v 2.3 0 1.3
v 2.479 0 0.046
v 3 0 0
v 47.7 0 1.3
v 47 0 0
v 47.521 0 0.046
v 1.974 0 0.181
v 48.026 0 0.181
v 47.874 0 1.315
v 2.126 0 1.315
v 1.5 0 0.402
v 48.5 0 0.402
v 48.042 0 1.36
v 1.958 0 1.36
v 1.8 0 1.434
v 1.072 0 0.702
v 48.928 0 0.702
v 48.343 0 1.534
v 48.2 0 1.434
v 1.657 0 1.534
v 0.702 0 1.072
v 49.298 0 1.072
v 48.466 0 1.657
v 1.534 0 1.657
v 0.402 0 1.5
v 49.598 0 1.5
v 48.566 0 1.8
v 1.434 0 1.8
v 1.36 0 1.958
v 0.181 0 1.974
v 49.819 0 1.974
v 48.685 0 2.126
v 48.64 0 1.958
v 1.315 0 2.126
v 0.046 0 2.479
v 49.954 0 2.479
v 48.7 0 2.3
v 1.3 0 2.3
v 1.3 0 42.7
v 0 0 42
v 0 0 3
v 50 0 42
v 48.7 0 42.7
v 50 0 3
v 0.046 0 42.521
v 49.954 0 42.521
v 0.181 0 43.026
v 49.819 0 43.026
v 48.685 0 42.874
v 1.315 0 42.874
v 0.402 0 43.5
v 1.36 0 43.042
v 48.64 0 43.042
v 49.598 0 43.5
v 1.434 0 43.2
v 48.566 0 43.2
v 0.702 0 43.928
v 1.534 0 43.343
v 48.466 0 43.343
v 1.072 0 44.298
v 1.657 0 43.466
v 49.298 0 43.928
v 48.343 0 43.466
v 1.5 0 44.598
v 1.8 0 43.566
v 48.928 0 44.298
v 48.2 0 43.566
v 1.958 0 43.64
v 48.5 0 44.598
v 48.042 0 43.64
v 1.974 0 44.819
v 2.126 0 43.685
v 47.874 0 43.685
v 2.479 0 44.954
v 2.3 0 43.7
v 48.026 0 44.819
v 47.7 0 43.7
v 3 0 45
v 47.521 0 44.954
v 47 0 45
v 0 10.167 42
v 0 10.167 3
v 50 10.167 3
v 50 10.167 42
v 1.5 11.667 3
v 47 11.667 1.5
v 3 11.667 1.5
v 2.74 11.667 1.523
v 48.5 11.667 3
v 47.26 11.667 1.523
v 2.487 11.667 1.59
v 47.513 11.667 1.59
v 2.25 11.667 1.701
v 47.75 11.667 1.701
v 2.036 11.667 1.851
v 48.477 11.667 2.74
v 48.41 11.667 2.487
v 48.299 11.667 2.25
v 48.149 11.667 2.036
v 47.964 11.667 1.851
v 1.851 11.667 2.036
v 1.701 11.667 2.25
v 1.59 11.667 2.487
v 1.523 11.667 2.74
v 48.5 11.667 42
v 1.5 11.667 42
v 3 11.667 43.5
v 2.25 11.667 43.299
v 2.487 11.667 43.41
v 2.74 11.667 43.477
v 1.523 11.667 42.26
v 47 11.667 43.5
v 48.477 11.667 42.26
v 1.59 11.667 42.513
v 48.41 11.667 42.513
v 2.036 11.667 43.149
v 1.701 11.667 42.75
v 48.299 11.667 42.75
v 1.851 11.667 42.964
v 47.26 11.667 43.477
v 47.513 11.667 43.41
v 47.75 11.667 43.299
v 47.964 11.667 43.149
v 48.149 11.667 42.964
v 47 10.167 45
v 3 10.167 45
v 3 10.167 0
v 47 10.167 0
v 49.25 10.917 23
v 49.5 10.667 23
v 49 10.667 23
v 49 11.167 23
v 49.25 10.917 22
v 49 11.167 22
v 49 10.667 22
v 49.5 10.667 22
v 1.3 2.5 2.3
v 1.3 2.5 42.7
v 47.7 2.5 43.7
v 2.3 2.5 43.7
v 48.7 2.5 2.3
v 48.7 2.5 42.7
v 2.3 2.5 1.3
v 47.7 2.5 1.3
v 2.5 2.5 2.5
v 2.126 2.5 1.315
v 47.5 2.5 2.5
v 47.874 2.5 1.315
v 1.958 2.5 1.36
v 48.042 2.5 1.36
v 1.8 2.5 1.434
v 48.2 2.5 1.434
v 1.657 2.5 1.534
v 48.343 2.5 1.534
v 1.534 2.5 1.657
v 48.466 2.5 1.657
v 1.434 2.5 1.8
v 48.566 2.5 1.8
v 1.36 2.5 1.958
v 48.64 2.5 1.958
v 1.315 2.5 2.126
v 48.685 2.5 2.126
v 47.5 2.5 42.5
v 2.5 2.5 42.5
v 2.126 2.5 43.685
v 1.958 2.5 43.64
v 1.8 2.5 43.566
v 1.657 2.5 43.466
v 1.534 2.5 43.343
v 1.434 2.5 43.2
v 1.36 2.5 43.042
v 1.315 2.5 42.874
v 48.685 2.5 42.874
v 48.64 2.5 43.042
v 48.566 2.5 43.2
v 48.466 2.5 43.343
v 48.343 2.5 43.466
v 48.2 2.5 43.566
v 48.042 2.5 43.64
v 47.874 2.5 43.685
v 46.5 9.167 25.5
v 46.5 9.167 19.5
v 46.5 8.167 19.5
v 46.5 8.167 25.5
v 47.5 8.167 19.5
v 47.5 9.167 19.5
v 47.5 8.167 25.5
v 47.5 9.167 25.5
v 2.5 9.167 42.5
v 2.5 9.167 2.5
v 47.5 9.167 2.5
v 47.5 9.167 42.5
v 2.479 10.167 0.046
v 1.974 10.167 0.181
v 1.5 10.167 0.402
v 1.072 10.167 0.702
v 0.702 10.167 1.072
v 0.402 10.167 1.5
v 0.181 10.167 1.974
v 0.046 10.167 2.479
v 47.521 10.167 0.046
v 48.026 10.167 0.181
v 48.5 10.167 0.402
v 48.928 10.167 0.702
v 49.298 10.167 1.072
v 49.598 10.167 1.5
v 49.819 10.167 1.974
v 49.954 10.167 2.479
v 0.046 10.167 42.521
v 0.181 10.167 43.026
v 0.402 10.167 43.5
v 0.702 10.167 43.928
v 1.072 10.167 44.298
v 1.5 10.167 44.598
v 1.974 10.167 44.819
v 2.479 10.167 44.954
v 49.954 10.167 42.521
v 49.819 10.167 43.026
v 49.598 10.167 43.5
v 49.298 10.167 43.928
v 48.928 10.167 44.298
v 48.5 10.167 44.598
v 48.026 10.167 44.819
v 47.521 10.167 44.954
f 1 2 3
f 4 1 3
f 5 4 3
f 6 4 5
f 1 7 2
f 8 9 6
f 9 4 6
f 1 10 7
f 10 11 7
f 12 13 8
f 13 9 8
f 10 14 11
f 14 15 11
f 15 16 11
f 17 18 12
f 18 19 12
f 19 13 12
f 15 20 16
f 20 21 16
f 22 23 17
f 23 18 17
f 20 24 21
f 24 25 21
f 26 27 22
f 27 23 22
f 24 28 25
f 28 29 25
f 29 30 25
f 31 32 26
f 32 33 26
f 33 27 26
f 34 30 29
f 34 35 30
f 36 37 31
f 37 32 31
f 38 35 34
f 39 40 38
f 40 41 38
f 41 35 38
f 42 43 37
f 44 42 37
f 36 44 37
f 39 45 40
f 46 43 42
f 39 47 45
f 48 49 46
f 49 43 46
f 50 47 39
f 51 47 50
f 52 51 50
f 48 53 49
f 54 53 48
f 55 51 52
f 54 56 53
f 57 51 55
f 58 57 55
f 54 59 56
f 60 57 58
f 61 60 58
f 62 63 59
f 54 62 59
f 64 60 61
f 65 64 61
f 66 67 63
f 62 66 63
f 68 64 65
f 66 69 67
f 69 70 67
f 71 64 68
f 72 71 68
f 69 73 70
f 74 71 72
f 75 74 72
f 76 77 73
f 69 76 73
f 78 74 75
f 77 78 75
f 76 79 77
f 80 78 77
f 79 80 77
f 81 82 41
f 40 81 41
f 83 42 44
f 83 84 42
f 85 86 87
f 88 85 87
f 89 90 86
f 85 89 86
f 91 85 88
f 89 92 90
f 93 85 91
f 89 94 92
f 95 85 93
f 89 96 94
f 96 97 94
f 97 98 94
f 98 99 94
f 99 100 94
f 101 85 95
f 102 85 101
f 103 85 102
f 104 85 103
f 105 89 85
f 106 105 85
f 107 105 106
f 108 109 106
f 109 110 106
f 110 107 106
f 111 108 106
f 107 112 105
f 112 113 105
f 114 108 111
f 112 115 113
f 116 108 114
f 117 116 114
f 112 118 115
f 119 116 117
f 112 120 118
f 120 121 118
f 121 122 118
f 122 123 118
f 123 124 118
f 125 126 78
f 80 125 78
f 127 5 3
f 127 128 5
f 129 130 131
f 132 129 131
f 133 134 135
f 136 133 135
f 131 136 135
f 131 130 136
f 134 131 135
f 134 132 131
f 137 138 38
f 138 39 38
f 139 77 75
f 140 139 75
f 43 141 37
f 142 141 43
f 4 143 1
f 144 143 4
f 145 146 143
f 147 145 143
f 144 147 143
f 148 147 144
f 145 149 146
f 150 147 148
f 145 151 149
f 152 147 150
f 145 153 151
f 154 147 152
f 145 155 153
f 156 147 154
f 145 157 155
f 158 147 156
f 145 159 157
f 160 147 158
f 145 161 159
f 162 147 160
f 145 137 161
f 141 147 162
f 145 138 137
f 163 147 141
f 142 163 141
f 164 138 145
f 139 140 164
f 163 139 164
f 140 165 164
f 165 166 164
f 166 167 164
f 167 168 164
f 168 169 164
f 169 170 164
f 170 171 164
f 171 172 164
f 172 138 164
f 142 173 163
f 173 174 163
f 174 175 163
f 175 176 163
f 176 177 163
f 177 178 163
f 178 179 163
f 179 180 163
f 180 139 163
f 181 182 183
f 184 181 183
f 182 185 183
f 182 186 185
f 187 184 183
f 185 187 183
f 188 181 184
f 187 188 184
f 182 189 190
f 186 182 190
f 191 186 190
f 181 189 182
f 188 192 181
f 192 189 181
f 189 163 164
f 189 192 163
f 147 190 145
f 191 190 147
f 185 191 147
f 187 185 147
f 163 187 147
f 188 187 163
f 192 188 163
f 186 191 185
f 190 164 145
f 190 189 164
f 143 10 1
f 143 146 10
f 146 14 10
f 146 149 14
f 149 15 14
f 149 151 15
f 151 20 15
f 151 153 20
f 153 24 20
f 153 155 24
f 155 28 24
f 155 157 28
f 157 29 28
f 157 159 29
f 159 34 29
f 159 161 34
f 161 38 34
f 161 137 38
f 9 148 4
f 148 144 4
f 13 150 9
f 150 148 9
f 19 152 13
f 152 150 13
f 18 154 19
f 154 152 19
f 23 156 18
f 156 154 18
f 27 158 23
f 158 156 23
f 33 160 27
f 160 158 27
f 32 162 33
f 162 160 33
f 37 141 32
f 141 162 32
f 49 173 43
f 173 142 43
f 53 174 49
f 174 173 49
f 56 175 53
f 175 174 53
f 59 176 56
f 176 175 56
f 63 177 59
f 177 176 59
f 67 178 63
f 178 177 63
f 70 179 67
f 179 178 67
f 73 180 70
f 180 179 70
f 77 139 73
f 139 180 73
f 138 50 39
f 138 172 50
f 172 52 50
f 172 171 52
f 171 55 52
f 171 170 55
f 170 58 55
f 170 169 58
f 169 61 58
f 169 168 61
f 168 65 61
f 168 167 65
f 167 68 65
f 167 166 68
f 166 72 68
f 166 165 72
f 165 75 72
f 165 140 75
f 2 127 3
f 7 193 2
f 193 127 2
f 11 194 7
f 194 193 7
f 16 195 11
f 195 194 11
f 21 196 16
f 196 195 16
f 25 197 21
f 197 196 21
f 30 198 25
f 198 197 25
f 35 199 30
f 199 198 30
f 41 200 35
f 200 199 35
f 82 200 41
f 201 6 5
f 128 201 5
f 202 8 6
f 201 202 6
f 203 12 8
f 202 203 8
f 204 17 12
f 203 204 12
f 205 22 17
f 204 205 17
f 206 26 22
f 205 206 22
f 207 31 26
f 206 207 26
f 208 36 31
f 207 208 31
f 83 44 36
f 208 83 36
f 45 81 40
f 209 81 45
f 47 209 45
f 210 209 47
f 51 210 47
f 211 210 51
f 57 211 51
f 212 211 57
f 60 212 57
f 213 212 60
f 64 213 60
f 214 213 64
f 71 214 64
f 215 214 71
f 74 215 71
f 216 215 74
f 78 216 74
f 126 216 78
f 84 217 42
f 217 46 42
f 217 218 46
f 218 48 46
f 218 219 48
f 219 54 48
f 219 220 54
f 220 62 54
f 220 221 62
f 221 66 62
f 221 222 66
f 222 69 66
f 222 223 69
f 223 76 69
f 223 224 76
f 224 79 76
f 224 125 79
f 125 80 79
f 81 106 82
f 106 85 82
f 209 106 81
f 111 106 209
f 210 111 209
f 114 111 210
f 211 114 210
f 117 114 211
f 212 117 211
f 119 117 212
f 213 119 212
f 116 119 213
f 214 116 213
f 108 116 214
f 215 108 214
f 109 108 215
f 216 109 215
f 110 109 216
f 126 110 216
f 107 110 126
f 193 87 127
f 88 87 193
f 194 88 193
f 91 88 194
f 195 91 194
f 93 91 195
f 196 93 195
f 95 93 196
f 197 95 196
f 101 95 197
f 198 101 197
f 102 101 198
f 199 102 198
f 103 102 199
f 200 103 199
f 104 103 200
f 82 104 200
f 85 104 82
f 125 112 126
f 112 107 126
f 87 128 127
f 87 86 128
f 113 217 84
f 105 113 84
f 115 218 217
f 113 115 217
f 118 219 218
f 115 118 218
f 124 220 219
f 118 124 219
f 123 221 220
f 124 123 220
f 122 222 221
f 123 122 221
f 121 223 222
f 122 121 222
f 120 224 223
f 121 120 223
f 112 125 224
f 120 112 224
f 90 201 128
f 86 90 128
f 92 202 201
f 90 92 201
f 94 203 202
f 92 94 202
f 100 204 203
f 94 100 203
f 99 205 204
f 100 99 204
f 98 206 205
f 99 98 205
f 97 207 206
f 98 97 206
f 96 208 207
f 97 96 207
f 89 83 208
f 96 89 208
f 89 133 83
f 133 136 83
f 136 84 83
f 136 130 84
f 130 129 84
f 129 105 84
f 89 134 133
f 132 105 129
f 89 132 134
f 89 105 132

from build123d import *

# Parameters (mm, degrees)
SKETCH1_W           = 50
SKETCH1_H           = 11.666666667
BOSS_EXTRUDE1_DEPTH = 45
SKETCH2_W           = 1
SKETCH2_H           = 1
CUT_EXTRUDE1_DEPTH  = 1
SHELL1_T            = -2.5
SKETCH3_W           = 47.4
SKETCH3_H           = 42.4
SKETCH3_W_2         = 45
SKETCH3_H_2         = 40
CUT_EXTRUDE3_DEPTH  = 2.5
FILLET1_R           = 1
FILLET2_R           = 3
CHAMFER1_SIZE       = 1.5


with BuildPart() as part:
    # Sketch1 → Boss-Extrude1 (new body)
    with BuildSketch(Plane.XY):
        with Locations((25, 5.833333334)):
            Rectangle(SKETCH1_W, SKETCH1_H)
    extrude(amount=BOSS_EXTRUDE1_DEPTH)

    # Sketch2 → Cut-Extrude1 (cut)
    with BuildSketch(Plane(origin=(50, 0, 0), x_dir=(0, 0, -1), z_dir=(1, 0, 0))):
        with Locations((-22.5, 11.166666667)):
            Rectangle(SKETCH2_W, SKETCH2_H)
    extrude(amount=-CUT_EXTRUDE1_DEPTH, mode=Mode.SUBTRACT)

    # Shell1
    shell1_openings = [part.faces().sort_by_distance(p)[0] for p in [
        (25, 0, 22.5),
    ]]
    offset(amount=SHELL1_T, openings=shell1_openings, kind=Kind.INTERSECTION)

    # Sketch3 → Cut-Extrude3 (cut)
    with BuildSketch(Plane.XZ):
        with Locations((25, 22.5)):
            Rectangle(SKETCH3_W, SKETCH3_H)
        with Locations((25, 22.5)):
            Rectangle(SKETCH3_W_2, SKETCH3_H_2, mode=Mode.SUBTRACT)
    extrude(amount=-CUT_EXTRUDE3_DEPTH, mode=Mode.SUBTRACT)

    # Fillet1
    fillet1_edges = [part.edges().sort_by_distance(p)[0] for p in [
        (1.3, 1.25, 1.3),
        (1.3, 1.25, 43.7),
        (48.7, 1.25, 43.7),
        (48.7, 1.25, 1.3),
    ]]
    fillet(fillet1_edges, radius=FILLET1_R)

    # Fillet2
    fillet2_edges = [part.edges().sort_by_distance(p)[0] for p in [
        (50, 5.833333333, 45),
        (0, 5.833333333, 45),
        (50, 5.833333333, 0),
        (0, 5.833333333, 0),
    ]]
    fillet(fillet2_edges, radius=FILLET2_R)

    # Chamfer1
    # the kernel refuses this chamfer: 1.5 mm, written as the material it takes off along each edge
    with BuildSketch(Plane(origin=(50, 11.666666667, 19.142475518), x_dir=(0.027495876610586768, -0.9996219169112968, 0), z_dir=(0, 0, 1)), Plane(origin=(50, 11.666666667, 3), x_dir=(0.027495876610586768, -0.9996219169112968, 0), z_dir=(0, 0, 1))) as chamfer1_piece_1:
        Polygon((CHAMFER1_SIZE * 0.999621916911, -CHAMFER1_SIZE * 0.0274958766106), (-CHAMFER1_SIZE * 0.0274958766106, -CHAMFER1_SIZE * 0.999621916911), (0, 0), align=None)
    extrude(amount=22.857524482, mode=Mode.SUBTRACT)
    with BuildSketch(Plane(origin=(47, 11.666666667, 42), x_dir=(0, 0, 1), z_dir=(-1, 0, 0))) as chamfer1_piece_2:
        Polygon((3, -CHAMFER1_SIZE), (3 - CHAMFER1_SIZE, 0), (3, 0), align=None)
    revolve(axis=Axis((47, 11.666666667, 42), (0, 1, 0)), revolution_arc=90, mode=Mode.SUBTRACT)
    with BuildSketch(Plane(origin=(47, 11.666666667, 3), x_dir=(0, 0, -1), z_dir=(-1, 0, 0))) as chamfer1_piece_3:
        Polygon((3, CHAMFER1_SIZE), (3 - CHAMFER1_SIZE, 0), (3, 0), align=None)
    revolve(axis=Axis((47, 11.666666667, 3), (0, -1, 0)), revolution_arc=90, mode=Mode.SUBTRACT)
    with BuildSketch(Plane(origin=(47, 11.666666667, 45), x_dir=(0, -0.9996219169112965, 0.02749587661058676), z_dir=(-1, 0, 0))) as chamfer1_piece_4:
        Polygon((CHAMFER1_SIZE * 0.999621916911, -CHAMFER1_SIZE * 0.0274958766106), (-CHAMFER1_SIZE * 0.0274958766106, -CHAMFER1_SIZE * 0.999621916911), (0, 0), align=None)
    extrude(amount=44, mode=Mode.SUBTRACT)
    with BuildSketch(Plane(origin=(47, 11.666666667, 0), x_dir=(0, -0.9996219169112968, -0.02749587661058636), z_dir=(-1, 0, 0))) as chamfer1_piece_5:
        Polygon((CHAMFER1_SIZE * 0.999621916911, CHAMFER1_SIZE * 0.0274958766106), (-CHAMFER1_SIZE * 0.0274958766106, CHAMFER1_SIZE * 0.999621916911), (0, 0), align=None)
    extrude(amount=44, mode=Mode.SUBTRACT)
    with BuildSketch(Plane(origin=(3, 11.666666667, 42), x_dir=(-1, 0, 0), z_dir=(0, 0, -1))) as chamfer1_piece_6:
        Polygon((3, -CHAMFER1_SIZE), (3 - CHAMFER1_SIZE, 0), (3, 0), align=None)
    revolve(axis=Axis((3, 11.666666667, 42), (0, 1, 0)), revolution_arc=90, mode=Mode.SUBTRACT)
    with BuildSketch(Plane(origin=(3, 11.666666667, 3), x_dir=(-1, 0, 0), z_dir=(0, 0, 1))) as chamfer1_piece_7:
        Polygon((3, CHAMFER1_SIZE), (3 - CHAMFER1_SIZE, 0), (3, 0), align=None)
    revolve(axis=Axis((3, 11.666666667, 3), (0, -1, 0)), revolution_arc=90, mode=Mode.SUBTRACT)
    with BuildSketch(Plane(origin=(0, 11.666666667, 3), x_dir=(-0.02749587661058636, -0.9996219169112968, 0), z_dir=(0, 0, 1))) as chamfer1_piece_8:
        Polygon((CHAMFER1_SIZE * 0.999621916911, CHAMFER1_SIZE * 0.0274958766106), (-CHAMFER1_SIZE * 0.0274958766106, CHAMFER1_SIZE * 0.999621916911), (0, 0), align=None)
    extrude(amount=39, mode=Mode.SUBTRACT)


solid = part.part
